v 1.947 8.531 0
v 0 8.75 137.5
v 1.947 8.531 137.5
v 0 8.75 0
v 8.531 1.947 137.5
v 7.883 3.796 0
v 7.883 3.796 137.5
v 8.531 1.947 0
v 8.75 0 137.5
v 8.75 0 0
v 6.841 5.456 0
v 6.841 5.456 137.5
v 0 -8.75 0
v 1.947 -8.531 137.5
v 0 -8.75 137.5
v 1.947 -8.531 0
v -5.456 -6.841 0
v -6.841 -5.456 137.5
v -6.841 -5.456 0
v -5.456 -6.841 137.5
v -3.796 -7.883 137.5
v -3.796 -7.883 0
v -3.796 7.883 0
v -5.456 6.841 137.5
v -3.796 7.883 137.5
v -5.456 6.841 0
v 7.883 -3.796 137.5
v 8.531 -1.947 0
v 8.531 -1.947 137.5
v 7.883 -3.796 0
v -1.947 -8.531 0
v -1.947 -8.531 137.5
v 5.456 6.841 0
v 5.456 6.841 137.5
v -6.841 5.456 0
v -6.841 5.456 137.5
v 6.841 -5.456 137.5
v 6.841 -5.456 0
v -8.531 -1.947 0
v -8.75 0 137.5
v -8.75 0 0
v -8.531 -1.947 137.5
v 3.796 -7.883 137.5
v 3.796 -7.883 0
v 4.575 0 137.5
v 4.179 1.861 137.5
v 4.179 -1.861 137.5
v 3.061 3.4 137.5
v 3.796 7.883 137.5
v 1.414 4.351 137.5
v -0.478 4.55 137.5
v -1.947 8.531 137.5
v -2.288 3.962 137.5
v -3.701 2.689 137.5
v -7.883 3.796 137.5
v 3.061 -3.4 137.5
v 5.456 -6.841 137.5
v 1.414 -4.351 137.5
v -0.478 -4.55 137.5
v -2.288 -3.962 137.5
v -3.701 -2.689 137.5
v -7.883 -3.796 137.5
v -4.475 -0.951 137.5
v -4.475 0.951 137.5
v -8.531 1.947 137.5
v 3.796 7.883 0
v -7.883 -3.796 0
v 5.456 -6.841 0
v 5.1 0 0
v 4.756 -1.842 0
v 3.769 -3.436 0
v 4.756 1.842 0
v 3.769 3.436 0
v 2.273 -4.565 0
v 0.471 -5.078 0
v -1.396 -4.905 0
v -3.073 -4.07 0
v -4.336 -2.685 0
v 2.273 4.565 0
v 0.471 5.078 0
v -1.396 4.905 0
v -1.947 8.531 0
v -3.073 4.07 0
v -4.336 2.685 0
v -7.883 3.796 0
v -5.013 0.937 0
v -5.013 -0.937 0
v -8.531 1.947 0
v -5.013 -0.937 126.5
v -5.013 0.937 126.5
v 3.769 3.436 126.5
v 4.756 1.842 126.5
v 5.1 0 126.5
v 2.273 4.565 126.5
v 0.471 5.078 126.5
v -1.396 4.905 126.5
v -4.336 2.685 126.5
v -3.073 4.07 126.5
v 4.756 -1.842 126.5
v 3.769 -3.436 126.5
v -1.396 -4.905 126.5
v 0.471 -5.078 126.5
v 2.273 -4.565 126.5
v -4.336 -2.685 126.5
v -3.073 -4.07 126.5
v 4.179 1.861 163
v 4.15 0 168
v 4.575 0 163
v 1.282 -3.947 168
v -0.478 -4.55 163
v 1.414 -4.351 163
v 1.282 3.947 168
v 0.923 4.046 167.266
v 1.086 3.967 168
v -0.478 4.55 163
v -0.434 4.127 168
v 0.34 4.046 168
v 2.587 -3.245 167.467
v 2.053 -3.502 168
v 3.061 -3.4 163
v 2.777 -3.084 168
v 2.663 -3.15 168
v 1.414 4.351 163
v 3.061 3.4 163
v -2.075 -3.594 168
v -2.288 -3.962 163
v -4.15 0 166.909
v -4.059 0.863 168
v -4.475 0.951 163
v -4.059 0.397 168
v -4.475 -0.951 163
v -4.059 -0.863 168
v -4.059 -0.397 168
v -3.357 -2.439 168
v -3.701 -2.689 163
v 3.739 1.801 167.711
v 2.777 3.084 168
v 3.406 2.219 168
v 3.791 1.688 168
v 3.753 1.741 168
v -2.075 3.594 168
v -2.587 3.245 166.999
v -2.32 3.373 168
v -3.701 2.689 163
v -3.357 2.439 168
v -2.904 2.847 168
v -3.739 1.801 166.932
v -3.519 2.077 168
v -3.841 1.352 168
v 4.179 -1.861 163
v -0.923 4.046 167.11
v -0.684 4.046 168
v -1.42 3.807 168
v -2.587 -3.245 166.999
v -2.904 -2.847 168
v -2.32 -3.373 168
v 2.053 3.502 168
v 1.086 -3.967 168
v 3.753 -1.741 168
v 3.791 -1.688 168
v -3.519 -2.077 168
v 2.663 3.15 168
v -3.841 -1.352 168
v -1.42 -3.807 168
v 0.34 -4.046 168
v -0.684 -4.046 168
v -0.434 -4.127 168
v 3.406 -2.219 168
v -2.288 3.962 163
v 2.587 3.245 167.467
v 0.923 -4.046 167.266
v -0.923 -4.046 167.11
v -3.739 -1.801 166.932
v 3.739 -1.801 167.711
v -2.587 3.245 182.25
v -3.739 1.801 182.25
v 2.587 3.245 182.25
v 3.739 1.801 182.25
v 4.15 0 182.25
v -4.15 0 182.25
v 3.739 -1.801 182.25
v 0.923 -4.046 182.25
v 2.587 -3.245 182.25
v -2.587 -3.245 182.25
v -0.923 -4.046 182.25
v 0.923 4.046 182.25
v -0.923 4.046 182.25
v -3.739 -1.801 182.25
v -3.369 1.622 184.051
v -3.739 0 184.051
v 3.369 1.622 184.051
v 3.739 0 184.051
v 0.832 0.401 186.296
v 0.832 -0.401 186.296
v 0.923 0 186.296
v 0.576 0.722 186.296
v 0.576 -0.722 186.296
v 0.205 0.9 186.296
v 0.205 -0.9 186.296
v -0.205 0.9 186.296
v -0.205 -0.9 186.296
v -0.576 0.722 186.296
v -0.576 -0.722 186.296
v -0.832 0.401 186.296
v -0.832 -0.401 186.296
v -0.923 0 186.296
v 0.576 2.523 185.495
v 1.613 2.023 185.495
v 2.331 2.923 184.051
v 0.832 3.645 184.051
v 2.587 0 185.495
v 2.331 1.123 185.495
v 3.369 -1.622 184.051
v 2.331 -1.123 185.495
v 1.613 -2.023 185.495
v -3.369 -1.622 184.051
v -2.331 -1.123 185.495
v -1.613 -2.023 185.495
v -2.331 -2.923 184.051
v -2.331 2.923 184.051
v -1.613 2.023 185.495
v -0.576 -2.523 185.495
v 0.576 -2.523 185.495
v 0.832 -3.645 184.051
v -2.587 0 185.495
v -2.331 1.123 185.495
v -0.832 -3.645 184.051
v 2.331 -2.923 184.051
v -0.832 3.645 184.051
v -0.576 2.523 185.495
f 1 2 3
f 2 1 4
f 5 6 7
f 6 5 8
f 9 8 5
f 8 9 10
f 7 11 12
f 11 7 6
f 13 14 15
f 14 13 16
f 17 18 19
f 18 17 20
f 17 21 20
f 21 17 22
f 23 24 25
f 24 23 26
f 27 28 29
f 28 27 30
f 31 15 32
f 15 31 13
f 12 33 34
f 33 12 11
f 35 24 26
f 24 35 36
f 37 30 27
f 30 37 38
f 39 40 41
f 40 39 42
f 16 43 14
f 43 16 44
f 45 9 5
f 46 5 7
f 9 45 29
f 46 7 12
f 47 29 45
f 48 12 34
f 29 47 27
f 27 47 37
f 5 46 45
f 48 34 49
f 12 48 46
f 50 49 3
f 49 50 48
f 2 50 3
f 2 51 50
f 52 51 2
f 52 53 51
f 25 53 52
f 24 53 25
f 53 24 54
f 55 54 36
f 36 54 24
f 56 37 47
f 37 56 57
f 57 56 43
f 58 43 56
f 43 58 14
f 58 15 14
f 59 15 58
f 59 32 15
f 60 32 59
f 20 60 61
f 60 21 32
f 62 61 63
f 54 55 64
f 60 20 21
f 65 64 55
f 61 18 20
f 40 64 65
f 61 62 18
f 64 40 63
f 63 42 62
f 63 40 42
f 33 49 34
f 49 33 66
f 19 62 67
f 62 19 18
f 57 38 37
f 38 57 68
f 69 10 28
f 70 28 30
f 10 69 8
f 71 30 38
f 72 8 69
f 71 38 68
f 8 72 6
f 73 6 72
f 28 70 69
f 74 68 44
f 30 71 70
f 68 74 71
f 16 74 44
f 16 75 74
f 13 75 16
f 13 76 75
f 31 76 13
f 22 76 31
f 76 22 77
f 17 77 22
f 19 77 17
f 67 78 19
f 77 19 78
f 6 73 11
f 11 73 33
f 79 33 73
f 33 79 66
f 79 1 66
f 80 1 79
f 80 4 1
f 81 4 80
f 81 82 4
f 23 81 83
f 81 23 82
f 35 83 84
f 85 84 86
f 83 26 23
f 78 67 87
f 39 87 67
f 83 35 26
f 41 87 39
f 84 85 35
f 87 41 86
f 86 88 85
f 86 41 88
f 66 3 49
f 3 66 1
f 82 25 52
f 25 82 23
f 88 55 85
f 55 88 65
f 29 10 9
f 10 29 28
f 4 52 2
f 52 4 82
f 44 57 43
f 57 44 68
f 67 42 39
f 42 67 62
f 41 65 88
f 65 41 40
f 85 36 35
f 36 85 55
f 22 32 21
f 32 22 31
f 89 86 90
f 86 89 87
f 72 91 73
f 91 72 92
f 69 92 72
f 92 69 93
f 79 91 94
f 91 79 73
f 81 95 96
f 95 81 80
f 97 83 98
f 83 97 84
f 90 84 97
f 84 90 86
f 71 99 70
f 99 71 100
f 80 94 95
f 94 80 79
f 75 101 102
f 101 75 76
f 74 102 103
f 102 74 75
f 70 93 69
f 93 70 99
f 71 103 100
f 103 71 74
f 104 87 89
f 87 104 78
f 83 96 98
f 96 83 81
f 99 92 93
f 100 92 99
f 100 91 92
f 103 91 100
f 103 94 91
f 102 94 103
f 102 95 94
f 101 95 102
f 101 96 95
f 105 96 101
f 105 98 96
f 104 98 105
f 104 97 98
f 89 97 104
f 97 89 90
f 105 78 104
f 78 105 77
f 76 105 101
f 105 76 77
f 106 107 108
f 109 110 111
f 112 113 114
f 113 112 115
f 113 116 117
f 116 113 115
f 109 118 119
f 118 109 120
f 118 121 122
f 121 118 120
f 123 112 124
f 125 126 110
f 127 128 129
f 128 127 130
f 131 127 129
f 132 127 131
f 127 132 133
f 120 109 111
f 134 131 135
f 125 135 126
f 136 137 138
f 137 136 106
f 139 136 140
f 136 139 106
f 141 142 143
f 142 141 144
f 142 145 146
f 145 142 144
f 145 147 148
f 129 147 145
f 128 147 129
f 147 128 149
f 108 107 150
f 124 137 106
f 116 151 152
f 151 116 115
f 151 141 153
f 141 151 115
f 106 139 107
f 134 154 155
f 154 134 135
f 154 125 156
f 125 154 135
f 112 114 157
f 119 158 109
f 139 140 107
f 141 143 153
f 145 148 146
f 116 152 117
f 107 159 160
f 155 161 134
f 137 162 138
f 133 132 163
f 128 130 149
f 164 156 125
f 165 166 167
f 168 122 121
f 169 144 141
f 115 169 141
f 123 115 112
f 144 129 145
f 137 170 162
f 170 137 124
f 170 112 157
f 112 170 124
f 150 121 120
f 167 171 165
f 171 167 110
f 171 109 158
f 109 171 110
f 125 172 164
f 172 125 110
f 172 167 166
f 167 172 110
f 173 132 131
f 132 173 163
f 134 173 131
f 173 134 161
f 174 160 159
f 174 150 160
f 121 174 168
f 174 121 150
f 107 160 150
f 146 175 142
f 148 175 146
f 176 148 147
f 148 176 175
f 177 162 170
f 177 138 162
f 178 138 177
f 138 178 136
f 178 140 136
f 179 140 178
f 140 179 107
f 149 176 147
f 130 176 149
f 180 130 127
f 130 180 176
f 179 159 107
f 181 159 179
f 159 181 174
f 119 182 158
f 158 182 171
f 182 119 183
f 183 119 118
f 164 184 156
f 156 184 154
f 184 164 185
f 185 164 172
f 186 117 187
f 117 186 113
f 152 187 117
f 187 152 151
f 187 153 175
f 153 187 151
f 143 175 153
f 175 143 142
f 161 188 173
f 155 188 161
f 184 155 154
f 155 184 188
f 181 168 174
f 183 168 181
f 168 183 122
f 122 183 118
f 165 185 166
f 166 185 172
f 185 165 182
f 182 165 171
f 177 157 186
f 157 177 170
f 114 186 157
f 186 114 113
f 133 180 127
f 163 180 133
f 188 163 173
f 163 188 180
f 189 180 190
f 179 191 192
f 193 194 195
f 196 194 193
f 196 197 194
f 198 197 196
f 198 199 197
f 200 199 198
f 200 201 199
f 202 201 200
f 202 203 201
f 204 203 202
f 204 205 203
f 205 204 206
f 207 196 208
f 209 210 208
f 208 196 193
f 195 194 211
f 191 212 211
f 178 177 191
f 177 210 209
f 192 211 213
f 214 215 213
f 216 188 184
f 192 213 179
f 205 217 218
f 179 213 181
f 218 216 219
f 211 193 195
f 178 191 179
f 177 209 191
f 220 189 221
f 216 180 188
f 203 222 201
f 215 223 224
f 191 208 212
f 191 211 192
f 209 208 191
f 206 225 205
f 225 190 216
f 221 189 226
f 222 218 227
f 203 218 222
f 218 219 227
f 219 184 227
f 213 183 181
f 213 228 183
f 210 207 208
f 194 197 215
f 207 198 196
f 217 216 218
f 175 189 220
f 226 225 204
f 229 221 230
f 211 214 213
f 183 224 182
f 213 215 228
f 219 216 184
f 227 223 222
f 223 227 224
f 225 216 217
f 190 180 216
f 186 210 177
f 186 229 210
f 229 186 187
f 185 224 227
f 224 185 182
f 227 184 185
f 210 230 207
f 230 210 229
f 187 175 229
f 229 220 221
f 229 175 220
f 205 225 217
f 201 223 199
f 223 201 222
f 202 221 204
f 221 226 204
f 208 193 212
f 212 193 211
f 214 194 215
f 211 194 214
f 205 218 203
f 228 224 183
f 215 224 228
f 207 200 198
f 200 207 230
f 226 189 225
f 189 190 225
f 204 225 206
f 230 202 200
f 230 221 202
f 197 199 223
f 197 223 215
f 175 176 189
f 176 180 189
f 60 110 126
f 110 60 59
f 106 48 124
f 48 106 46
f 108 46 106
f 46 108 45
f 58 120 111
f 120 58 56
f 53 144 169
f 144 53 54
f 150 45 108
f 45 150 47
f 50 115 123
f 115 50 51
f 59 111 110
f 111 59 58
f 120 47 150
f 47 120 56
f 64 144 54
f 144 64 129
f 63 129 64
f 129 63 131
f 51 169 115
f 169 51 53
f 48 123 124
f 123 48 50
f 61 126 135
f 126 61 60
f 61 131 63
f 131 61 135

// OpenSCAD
height = 137.5;
outside_r = 17.5/2;
opening_r = 10.2/2;

/*
top rod height 1: 25.5mm
top rod dia 1: 9.15mm
top rod dia 1: w/ protrusion: 9.62mm
top rod height 2: 23.4mm (rounded no top)
top rod dia 2: 8.3mm
*/

difference() {
    cylinder(h=height, r=outside_r);
#    translate([0,0,-1]) cylinder(h=height-10, r=opening_r);
}

translate([0,0,height]) {
    cylinder(h=25.5, r=4.575);
    translate([0,0,25.5]) {
        cylinder(h=5,r1=4.575,r2=4.15);
        cylinder(h=23.4-4.15, r=4.15);
        #translate([0,0,23.4-4.15]) sphere(r=4.15);
    }
}
